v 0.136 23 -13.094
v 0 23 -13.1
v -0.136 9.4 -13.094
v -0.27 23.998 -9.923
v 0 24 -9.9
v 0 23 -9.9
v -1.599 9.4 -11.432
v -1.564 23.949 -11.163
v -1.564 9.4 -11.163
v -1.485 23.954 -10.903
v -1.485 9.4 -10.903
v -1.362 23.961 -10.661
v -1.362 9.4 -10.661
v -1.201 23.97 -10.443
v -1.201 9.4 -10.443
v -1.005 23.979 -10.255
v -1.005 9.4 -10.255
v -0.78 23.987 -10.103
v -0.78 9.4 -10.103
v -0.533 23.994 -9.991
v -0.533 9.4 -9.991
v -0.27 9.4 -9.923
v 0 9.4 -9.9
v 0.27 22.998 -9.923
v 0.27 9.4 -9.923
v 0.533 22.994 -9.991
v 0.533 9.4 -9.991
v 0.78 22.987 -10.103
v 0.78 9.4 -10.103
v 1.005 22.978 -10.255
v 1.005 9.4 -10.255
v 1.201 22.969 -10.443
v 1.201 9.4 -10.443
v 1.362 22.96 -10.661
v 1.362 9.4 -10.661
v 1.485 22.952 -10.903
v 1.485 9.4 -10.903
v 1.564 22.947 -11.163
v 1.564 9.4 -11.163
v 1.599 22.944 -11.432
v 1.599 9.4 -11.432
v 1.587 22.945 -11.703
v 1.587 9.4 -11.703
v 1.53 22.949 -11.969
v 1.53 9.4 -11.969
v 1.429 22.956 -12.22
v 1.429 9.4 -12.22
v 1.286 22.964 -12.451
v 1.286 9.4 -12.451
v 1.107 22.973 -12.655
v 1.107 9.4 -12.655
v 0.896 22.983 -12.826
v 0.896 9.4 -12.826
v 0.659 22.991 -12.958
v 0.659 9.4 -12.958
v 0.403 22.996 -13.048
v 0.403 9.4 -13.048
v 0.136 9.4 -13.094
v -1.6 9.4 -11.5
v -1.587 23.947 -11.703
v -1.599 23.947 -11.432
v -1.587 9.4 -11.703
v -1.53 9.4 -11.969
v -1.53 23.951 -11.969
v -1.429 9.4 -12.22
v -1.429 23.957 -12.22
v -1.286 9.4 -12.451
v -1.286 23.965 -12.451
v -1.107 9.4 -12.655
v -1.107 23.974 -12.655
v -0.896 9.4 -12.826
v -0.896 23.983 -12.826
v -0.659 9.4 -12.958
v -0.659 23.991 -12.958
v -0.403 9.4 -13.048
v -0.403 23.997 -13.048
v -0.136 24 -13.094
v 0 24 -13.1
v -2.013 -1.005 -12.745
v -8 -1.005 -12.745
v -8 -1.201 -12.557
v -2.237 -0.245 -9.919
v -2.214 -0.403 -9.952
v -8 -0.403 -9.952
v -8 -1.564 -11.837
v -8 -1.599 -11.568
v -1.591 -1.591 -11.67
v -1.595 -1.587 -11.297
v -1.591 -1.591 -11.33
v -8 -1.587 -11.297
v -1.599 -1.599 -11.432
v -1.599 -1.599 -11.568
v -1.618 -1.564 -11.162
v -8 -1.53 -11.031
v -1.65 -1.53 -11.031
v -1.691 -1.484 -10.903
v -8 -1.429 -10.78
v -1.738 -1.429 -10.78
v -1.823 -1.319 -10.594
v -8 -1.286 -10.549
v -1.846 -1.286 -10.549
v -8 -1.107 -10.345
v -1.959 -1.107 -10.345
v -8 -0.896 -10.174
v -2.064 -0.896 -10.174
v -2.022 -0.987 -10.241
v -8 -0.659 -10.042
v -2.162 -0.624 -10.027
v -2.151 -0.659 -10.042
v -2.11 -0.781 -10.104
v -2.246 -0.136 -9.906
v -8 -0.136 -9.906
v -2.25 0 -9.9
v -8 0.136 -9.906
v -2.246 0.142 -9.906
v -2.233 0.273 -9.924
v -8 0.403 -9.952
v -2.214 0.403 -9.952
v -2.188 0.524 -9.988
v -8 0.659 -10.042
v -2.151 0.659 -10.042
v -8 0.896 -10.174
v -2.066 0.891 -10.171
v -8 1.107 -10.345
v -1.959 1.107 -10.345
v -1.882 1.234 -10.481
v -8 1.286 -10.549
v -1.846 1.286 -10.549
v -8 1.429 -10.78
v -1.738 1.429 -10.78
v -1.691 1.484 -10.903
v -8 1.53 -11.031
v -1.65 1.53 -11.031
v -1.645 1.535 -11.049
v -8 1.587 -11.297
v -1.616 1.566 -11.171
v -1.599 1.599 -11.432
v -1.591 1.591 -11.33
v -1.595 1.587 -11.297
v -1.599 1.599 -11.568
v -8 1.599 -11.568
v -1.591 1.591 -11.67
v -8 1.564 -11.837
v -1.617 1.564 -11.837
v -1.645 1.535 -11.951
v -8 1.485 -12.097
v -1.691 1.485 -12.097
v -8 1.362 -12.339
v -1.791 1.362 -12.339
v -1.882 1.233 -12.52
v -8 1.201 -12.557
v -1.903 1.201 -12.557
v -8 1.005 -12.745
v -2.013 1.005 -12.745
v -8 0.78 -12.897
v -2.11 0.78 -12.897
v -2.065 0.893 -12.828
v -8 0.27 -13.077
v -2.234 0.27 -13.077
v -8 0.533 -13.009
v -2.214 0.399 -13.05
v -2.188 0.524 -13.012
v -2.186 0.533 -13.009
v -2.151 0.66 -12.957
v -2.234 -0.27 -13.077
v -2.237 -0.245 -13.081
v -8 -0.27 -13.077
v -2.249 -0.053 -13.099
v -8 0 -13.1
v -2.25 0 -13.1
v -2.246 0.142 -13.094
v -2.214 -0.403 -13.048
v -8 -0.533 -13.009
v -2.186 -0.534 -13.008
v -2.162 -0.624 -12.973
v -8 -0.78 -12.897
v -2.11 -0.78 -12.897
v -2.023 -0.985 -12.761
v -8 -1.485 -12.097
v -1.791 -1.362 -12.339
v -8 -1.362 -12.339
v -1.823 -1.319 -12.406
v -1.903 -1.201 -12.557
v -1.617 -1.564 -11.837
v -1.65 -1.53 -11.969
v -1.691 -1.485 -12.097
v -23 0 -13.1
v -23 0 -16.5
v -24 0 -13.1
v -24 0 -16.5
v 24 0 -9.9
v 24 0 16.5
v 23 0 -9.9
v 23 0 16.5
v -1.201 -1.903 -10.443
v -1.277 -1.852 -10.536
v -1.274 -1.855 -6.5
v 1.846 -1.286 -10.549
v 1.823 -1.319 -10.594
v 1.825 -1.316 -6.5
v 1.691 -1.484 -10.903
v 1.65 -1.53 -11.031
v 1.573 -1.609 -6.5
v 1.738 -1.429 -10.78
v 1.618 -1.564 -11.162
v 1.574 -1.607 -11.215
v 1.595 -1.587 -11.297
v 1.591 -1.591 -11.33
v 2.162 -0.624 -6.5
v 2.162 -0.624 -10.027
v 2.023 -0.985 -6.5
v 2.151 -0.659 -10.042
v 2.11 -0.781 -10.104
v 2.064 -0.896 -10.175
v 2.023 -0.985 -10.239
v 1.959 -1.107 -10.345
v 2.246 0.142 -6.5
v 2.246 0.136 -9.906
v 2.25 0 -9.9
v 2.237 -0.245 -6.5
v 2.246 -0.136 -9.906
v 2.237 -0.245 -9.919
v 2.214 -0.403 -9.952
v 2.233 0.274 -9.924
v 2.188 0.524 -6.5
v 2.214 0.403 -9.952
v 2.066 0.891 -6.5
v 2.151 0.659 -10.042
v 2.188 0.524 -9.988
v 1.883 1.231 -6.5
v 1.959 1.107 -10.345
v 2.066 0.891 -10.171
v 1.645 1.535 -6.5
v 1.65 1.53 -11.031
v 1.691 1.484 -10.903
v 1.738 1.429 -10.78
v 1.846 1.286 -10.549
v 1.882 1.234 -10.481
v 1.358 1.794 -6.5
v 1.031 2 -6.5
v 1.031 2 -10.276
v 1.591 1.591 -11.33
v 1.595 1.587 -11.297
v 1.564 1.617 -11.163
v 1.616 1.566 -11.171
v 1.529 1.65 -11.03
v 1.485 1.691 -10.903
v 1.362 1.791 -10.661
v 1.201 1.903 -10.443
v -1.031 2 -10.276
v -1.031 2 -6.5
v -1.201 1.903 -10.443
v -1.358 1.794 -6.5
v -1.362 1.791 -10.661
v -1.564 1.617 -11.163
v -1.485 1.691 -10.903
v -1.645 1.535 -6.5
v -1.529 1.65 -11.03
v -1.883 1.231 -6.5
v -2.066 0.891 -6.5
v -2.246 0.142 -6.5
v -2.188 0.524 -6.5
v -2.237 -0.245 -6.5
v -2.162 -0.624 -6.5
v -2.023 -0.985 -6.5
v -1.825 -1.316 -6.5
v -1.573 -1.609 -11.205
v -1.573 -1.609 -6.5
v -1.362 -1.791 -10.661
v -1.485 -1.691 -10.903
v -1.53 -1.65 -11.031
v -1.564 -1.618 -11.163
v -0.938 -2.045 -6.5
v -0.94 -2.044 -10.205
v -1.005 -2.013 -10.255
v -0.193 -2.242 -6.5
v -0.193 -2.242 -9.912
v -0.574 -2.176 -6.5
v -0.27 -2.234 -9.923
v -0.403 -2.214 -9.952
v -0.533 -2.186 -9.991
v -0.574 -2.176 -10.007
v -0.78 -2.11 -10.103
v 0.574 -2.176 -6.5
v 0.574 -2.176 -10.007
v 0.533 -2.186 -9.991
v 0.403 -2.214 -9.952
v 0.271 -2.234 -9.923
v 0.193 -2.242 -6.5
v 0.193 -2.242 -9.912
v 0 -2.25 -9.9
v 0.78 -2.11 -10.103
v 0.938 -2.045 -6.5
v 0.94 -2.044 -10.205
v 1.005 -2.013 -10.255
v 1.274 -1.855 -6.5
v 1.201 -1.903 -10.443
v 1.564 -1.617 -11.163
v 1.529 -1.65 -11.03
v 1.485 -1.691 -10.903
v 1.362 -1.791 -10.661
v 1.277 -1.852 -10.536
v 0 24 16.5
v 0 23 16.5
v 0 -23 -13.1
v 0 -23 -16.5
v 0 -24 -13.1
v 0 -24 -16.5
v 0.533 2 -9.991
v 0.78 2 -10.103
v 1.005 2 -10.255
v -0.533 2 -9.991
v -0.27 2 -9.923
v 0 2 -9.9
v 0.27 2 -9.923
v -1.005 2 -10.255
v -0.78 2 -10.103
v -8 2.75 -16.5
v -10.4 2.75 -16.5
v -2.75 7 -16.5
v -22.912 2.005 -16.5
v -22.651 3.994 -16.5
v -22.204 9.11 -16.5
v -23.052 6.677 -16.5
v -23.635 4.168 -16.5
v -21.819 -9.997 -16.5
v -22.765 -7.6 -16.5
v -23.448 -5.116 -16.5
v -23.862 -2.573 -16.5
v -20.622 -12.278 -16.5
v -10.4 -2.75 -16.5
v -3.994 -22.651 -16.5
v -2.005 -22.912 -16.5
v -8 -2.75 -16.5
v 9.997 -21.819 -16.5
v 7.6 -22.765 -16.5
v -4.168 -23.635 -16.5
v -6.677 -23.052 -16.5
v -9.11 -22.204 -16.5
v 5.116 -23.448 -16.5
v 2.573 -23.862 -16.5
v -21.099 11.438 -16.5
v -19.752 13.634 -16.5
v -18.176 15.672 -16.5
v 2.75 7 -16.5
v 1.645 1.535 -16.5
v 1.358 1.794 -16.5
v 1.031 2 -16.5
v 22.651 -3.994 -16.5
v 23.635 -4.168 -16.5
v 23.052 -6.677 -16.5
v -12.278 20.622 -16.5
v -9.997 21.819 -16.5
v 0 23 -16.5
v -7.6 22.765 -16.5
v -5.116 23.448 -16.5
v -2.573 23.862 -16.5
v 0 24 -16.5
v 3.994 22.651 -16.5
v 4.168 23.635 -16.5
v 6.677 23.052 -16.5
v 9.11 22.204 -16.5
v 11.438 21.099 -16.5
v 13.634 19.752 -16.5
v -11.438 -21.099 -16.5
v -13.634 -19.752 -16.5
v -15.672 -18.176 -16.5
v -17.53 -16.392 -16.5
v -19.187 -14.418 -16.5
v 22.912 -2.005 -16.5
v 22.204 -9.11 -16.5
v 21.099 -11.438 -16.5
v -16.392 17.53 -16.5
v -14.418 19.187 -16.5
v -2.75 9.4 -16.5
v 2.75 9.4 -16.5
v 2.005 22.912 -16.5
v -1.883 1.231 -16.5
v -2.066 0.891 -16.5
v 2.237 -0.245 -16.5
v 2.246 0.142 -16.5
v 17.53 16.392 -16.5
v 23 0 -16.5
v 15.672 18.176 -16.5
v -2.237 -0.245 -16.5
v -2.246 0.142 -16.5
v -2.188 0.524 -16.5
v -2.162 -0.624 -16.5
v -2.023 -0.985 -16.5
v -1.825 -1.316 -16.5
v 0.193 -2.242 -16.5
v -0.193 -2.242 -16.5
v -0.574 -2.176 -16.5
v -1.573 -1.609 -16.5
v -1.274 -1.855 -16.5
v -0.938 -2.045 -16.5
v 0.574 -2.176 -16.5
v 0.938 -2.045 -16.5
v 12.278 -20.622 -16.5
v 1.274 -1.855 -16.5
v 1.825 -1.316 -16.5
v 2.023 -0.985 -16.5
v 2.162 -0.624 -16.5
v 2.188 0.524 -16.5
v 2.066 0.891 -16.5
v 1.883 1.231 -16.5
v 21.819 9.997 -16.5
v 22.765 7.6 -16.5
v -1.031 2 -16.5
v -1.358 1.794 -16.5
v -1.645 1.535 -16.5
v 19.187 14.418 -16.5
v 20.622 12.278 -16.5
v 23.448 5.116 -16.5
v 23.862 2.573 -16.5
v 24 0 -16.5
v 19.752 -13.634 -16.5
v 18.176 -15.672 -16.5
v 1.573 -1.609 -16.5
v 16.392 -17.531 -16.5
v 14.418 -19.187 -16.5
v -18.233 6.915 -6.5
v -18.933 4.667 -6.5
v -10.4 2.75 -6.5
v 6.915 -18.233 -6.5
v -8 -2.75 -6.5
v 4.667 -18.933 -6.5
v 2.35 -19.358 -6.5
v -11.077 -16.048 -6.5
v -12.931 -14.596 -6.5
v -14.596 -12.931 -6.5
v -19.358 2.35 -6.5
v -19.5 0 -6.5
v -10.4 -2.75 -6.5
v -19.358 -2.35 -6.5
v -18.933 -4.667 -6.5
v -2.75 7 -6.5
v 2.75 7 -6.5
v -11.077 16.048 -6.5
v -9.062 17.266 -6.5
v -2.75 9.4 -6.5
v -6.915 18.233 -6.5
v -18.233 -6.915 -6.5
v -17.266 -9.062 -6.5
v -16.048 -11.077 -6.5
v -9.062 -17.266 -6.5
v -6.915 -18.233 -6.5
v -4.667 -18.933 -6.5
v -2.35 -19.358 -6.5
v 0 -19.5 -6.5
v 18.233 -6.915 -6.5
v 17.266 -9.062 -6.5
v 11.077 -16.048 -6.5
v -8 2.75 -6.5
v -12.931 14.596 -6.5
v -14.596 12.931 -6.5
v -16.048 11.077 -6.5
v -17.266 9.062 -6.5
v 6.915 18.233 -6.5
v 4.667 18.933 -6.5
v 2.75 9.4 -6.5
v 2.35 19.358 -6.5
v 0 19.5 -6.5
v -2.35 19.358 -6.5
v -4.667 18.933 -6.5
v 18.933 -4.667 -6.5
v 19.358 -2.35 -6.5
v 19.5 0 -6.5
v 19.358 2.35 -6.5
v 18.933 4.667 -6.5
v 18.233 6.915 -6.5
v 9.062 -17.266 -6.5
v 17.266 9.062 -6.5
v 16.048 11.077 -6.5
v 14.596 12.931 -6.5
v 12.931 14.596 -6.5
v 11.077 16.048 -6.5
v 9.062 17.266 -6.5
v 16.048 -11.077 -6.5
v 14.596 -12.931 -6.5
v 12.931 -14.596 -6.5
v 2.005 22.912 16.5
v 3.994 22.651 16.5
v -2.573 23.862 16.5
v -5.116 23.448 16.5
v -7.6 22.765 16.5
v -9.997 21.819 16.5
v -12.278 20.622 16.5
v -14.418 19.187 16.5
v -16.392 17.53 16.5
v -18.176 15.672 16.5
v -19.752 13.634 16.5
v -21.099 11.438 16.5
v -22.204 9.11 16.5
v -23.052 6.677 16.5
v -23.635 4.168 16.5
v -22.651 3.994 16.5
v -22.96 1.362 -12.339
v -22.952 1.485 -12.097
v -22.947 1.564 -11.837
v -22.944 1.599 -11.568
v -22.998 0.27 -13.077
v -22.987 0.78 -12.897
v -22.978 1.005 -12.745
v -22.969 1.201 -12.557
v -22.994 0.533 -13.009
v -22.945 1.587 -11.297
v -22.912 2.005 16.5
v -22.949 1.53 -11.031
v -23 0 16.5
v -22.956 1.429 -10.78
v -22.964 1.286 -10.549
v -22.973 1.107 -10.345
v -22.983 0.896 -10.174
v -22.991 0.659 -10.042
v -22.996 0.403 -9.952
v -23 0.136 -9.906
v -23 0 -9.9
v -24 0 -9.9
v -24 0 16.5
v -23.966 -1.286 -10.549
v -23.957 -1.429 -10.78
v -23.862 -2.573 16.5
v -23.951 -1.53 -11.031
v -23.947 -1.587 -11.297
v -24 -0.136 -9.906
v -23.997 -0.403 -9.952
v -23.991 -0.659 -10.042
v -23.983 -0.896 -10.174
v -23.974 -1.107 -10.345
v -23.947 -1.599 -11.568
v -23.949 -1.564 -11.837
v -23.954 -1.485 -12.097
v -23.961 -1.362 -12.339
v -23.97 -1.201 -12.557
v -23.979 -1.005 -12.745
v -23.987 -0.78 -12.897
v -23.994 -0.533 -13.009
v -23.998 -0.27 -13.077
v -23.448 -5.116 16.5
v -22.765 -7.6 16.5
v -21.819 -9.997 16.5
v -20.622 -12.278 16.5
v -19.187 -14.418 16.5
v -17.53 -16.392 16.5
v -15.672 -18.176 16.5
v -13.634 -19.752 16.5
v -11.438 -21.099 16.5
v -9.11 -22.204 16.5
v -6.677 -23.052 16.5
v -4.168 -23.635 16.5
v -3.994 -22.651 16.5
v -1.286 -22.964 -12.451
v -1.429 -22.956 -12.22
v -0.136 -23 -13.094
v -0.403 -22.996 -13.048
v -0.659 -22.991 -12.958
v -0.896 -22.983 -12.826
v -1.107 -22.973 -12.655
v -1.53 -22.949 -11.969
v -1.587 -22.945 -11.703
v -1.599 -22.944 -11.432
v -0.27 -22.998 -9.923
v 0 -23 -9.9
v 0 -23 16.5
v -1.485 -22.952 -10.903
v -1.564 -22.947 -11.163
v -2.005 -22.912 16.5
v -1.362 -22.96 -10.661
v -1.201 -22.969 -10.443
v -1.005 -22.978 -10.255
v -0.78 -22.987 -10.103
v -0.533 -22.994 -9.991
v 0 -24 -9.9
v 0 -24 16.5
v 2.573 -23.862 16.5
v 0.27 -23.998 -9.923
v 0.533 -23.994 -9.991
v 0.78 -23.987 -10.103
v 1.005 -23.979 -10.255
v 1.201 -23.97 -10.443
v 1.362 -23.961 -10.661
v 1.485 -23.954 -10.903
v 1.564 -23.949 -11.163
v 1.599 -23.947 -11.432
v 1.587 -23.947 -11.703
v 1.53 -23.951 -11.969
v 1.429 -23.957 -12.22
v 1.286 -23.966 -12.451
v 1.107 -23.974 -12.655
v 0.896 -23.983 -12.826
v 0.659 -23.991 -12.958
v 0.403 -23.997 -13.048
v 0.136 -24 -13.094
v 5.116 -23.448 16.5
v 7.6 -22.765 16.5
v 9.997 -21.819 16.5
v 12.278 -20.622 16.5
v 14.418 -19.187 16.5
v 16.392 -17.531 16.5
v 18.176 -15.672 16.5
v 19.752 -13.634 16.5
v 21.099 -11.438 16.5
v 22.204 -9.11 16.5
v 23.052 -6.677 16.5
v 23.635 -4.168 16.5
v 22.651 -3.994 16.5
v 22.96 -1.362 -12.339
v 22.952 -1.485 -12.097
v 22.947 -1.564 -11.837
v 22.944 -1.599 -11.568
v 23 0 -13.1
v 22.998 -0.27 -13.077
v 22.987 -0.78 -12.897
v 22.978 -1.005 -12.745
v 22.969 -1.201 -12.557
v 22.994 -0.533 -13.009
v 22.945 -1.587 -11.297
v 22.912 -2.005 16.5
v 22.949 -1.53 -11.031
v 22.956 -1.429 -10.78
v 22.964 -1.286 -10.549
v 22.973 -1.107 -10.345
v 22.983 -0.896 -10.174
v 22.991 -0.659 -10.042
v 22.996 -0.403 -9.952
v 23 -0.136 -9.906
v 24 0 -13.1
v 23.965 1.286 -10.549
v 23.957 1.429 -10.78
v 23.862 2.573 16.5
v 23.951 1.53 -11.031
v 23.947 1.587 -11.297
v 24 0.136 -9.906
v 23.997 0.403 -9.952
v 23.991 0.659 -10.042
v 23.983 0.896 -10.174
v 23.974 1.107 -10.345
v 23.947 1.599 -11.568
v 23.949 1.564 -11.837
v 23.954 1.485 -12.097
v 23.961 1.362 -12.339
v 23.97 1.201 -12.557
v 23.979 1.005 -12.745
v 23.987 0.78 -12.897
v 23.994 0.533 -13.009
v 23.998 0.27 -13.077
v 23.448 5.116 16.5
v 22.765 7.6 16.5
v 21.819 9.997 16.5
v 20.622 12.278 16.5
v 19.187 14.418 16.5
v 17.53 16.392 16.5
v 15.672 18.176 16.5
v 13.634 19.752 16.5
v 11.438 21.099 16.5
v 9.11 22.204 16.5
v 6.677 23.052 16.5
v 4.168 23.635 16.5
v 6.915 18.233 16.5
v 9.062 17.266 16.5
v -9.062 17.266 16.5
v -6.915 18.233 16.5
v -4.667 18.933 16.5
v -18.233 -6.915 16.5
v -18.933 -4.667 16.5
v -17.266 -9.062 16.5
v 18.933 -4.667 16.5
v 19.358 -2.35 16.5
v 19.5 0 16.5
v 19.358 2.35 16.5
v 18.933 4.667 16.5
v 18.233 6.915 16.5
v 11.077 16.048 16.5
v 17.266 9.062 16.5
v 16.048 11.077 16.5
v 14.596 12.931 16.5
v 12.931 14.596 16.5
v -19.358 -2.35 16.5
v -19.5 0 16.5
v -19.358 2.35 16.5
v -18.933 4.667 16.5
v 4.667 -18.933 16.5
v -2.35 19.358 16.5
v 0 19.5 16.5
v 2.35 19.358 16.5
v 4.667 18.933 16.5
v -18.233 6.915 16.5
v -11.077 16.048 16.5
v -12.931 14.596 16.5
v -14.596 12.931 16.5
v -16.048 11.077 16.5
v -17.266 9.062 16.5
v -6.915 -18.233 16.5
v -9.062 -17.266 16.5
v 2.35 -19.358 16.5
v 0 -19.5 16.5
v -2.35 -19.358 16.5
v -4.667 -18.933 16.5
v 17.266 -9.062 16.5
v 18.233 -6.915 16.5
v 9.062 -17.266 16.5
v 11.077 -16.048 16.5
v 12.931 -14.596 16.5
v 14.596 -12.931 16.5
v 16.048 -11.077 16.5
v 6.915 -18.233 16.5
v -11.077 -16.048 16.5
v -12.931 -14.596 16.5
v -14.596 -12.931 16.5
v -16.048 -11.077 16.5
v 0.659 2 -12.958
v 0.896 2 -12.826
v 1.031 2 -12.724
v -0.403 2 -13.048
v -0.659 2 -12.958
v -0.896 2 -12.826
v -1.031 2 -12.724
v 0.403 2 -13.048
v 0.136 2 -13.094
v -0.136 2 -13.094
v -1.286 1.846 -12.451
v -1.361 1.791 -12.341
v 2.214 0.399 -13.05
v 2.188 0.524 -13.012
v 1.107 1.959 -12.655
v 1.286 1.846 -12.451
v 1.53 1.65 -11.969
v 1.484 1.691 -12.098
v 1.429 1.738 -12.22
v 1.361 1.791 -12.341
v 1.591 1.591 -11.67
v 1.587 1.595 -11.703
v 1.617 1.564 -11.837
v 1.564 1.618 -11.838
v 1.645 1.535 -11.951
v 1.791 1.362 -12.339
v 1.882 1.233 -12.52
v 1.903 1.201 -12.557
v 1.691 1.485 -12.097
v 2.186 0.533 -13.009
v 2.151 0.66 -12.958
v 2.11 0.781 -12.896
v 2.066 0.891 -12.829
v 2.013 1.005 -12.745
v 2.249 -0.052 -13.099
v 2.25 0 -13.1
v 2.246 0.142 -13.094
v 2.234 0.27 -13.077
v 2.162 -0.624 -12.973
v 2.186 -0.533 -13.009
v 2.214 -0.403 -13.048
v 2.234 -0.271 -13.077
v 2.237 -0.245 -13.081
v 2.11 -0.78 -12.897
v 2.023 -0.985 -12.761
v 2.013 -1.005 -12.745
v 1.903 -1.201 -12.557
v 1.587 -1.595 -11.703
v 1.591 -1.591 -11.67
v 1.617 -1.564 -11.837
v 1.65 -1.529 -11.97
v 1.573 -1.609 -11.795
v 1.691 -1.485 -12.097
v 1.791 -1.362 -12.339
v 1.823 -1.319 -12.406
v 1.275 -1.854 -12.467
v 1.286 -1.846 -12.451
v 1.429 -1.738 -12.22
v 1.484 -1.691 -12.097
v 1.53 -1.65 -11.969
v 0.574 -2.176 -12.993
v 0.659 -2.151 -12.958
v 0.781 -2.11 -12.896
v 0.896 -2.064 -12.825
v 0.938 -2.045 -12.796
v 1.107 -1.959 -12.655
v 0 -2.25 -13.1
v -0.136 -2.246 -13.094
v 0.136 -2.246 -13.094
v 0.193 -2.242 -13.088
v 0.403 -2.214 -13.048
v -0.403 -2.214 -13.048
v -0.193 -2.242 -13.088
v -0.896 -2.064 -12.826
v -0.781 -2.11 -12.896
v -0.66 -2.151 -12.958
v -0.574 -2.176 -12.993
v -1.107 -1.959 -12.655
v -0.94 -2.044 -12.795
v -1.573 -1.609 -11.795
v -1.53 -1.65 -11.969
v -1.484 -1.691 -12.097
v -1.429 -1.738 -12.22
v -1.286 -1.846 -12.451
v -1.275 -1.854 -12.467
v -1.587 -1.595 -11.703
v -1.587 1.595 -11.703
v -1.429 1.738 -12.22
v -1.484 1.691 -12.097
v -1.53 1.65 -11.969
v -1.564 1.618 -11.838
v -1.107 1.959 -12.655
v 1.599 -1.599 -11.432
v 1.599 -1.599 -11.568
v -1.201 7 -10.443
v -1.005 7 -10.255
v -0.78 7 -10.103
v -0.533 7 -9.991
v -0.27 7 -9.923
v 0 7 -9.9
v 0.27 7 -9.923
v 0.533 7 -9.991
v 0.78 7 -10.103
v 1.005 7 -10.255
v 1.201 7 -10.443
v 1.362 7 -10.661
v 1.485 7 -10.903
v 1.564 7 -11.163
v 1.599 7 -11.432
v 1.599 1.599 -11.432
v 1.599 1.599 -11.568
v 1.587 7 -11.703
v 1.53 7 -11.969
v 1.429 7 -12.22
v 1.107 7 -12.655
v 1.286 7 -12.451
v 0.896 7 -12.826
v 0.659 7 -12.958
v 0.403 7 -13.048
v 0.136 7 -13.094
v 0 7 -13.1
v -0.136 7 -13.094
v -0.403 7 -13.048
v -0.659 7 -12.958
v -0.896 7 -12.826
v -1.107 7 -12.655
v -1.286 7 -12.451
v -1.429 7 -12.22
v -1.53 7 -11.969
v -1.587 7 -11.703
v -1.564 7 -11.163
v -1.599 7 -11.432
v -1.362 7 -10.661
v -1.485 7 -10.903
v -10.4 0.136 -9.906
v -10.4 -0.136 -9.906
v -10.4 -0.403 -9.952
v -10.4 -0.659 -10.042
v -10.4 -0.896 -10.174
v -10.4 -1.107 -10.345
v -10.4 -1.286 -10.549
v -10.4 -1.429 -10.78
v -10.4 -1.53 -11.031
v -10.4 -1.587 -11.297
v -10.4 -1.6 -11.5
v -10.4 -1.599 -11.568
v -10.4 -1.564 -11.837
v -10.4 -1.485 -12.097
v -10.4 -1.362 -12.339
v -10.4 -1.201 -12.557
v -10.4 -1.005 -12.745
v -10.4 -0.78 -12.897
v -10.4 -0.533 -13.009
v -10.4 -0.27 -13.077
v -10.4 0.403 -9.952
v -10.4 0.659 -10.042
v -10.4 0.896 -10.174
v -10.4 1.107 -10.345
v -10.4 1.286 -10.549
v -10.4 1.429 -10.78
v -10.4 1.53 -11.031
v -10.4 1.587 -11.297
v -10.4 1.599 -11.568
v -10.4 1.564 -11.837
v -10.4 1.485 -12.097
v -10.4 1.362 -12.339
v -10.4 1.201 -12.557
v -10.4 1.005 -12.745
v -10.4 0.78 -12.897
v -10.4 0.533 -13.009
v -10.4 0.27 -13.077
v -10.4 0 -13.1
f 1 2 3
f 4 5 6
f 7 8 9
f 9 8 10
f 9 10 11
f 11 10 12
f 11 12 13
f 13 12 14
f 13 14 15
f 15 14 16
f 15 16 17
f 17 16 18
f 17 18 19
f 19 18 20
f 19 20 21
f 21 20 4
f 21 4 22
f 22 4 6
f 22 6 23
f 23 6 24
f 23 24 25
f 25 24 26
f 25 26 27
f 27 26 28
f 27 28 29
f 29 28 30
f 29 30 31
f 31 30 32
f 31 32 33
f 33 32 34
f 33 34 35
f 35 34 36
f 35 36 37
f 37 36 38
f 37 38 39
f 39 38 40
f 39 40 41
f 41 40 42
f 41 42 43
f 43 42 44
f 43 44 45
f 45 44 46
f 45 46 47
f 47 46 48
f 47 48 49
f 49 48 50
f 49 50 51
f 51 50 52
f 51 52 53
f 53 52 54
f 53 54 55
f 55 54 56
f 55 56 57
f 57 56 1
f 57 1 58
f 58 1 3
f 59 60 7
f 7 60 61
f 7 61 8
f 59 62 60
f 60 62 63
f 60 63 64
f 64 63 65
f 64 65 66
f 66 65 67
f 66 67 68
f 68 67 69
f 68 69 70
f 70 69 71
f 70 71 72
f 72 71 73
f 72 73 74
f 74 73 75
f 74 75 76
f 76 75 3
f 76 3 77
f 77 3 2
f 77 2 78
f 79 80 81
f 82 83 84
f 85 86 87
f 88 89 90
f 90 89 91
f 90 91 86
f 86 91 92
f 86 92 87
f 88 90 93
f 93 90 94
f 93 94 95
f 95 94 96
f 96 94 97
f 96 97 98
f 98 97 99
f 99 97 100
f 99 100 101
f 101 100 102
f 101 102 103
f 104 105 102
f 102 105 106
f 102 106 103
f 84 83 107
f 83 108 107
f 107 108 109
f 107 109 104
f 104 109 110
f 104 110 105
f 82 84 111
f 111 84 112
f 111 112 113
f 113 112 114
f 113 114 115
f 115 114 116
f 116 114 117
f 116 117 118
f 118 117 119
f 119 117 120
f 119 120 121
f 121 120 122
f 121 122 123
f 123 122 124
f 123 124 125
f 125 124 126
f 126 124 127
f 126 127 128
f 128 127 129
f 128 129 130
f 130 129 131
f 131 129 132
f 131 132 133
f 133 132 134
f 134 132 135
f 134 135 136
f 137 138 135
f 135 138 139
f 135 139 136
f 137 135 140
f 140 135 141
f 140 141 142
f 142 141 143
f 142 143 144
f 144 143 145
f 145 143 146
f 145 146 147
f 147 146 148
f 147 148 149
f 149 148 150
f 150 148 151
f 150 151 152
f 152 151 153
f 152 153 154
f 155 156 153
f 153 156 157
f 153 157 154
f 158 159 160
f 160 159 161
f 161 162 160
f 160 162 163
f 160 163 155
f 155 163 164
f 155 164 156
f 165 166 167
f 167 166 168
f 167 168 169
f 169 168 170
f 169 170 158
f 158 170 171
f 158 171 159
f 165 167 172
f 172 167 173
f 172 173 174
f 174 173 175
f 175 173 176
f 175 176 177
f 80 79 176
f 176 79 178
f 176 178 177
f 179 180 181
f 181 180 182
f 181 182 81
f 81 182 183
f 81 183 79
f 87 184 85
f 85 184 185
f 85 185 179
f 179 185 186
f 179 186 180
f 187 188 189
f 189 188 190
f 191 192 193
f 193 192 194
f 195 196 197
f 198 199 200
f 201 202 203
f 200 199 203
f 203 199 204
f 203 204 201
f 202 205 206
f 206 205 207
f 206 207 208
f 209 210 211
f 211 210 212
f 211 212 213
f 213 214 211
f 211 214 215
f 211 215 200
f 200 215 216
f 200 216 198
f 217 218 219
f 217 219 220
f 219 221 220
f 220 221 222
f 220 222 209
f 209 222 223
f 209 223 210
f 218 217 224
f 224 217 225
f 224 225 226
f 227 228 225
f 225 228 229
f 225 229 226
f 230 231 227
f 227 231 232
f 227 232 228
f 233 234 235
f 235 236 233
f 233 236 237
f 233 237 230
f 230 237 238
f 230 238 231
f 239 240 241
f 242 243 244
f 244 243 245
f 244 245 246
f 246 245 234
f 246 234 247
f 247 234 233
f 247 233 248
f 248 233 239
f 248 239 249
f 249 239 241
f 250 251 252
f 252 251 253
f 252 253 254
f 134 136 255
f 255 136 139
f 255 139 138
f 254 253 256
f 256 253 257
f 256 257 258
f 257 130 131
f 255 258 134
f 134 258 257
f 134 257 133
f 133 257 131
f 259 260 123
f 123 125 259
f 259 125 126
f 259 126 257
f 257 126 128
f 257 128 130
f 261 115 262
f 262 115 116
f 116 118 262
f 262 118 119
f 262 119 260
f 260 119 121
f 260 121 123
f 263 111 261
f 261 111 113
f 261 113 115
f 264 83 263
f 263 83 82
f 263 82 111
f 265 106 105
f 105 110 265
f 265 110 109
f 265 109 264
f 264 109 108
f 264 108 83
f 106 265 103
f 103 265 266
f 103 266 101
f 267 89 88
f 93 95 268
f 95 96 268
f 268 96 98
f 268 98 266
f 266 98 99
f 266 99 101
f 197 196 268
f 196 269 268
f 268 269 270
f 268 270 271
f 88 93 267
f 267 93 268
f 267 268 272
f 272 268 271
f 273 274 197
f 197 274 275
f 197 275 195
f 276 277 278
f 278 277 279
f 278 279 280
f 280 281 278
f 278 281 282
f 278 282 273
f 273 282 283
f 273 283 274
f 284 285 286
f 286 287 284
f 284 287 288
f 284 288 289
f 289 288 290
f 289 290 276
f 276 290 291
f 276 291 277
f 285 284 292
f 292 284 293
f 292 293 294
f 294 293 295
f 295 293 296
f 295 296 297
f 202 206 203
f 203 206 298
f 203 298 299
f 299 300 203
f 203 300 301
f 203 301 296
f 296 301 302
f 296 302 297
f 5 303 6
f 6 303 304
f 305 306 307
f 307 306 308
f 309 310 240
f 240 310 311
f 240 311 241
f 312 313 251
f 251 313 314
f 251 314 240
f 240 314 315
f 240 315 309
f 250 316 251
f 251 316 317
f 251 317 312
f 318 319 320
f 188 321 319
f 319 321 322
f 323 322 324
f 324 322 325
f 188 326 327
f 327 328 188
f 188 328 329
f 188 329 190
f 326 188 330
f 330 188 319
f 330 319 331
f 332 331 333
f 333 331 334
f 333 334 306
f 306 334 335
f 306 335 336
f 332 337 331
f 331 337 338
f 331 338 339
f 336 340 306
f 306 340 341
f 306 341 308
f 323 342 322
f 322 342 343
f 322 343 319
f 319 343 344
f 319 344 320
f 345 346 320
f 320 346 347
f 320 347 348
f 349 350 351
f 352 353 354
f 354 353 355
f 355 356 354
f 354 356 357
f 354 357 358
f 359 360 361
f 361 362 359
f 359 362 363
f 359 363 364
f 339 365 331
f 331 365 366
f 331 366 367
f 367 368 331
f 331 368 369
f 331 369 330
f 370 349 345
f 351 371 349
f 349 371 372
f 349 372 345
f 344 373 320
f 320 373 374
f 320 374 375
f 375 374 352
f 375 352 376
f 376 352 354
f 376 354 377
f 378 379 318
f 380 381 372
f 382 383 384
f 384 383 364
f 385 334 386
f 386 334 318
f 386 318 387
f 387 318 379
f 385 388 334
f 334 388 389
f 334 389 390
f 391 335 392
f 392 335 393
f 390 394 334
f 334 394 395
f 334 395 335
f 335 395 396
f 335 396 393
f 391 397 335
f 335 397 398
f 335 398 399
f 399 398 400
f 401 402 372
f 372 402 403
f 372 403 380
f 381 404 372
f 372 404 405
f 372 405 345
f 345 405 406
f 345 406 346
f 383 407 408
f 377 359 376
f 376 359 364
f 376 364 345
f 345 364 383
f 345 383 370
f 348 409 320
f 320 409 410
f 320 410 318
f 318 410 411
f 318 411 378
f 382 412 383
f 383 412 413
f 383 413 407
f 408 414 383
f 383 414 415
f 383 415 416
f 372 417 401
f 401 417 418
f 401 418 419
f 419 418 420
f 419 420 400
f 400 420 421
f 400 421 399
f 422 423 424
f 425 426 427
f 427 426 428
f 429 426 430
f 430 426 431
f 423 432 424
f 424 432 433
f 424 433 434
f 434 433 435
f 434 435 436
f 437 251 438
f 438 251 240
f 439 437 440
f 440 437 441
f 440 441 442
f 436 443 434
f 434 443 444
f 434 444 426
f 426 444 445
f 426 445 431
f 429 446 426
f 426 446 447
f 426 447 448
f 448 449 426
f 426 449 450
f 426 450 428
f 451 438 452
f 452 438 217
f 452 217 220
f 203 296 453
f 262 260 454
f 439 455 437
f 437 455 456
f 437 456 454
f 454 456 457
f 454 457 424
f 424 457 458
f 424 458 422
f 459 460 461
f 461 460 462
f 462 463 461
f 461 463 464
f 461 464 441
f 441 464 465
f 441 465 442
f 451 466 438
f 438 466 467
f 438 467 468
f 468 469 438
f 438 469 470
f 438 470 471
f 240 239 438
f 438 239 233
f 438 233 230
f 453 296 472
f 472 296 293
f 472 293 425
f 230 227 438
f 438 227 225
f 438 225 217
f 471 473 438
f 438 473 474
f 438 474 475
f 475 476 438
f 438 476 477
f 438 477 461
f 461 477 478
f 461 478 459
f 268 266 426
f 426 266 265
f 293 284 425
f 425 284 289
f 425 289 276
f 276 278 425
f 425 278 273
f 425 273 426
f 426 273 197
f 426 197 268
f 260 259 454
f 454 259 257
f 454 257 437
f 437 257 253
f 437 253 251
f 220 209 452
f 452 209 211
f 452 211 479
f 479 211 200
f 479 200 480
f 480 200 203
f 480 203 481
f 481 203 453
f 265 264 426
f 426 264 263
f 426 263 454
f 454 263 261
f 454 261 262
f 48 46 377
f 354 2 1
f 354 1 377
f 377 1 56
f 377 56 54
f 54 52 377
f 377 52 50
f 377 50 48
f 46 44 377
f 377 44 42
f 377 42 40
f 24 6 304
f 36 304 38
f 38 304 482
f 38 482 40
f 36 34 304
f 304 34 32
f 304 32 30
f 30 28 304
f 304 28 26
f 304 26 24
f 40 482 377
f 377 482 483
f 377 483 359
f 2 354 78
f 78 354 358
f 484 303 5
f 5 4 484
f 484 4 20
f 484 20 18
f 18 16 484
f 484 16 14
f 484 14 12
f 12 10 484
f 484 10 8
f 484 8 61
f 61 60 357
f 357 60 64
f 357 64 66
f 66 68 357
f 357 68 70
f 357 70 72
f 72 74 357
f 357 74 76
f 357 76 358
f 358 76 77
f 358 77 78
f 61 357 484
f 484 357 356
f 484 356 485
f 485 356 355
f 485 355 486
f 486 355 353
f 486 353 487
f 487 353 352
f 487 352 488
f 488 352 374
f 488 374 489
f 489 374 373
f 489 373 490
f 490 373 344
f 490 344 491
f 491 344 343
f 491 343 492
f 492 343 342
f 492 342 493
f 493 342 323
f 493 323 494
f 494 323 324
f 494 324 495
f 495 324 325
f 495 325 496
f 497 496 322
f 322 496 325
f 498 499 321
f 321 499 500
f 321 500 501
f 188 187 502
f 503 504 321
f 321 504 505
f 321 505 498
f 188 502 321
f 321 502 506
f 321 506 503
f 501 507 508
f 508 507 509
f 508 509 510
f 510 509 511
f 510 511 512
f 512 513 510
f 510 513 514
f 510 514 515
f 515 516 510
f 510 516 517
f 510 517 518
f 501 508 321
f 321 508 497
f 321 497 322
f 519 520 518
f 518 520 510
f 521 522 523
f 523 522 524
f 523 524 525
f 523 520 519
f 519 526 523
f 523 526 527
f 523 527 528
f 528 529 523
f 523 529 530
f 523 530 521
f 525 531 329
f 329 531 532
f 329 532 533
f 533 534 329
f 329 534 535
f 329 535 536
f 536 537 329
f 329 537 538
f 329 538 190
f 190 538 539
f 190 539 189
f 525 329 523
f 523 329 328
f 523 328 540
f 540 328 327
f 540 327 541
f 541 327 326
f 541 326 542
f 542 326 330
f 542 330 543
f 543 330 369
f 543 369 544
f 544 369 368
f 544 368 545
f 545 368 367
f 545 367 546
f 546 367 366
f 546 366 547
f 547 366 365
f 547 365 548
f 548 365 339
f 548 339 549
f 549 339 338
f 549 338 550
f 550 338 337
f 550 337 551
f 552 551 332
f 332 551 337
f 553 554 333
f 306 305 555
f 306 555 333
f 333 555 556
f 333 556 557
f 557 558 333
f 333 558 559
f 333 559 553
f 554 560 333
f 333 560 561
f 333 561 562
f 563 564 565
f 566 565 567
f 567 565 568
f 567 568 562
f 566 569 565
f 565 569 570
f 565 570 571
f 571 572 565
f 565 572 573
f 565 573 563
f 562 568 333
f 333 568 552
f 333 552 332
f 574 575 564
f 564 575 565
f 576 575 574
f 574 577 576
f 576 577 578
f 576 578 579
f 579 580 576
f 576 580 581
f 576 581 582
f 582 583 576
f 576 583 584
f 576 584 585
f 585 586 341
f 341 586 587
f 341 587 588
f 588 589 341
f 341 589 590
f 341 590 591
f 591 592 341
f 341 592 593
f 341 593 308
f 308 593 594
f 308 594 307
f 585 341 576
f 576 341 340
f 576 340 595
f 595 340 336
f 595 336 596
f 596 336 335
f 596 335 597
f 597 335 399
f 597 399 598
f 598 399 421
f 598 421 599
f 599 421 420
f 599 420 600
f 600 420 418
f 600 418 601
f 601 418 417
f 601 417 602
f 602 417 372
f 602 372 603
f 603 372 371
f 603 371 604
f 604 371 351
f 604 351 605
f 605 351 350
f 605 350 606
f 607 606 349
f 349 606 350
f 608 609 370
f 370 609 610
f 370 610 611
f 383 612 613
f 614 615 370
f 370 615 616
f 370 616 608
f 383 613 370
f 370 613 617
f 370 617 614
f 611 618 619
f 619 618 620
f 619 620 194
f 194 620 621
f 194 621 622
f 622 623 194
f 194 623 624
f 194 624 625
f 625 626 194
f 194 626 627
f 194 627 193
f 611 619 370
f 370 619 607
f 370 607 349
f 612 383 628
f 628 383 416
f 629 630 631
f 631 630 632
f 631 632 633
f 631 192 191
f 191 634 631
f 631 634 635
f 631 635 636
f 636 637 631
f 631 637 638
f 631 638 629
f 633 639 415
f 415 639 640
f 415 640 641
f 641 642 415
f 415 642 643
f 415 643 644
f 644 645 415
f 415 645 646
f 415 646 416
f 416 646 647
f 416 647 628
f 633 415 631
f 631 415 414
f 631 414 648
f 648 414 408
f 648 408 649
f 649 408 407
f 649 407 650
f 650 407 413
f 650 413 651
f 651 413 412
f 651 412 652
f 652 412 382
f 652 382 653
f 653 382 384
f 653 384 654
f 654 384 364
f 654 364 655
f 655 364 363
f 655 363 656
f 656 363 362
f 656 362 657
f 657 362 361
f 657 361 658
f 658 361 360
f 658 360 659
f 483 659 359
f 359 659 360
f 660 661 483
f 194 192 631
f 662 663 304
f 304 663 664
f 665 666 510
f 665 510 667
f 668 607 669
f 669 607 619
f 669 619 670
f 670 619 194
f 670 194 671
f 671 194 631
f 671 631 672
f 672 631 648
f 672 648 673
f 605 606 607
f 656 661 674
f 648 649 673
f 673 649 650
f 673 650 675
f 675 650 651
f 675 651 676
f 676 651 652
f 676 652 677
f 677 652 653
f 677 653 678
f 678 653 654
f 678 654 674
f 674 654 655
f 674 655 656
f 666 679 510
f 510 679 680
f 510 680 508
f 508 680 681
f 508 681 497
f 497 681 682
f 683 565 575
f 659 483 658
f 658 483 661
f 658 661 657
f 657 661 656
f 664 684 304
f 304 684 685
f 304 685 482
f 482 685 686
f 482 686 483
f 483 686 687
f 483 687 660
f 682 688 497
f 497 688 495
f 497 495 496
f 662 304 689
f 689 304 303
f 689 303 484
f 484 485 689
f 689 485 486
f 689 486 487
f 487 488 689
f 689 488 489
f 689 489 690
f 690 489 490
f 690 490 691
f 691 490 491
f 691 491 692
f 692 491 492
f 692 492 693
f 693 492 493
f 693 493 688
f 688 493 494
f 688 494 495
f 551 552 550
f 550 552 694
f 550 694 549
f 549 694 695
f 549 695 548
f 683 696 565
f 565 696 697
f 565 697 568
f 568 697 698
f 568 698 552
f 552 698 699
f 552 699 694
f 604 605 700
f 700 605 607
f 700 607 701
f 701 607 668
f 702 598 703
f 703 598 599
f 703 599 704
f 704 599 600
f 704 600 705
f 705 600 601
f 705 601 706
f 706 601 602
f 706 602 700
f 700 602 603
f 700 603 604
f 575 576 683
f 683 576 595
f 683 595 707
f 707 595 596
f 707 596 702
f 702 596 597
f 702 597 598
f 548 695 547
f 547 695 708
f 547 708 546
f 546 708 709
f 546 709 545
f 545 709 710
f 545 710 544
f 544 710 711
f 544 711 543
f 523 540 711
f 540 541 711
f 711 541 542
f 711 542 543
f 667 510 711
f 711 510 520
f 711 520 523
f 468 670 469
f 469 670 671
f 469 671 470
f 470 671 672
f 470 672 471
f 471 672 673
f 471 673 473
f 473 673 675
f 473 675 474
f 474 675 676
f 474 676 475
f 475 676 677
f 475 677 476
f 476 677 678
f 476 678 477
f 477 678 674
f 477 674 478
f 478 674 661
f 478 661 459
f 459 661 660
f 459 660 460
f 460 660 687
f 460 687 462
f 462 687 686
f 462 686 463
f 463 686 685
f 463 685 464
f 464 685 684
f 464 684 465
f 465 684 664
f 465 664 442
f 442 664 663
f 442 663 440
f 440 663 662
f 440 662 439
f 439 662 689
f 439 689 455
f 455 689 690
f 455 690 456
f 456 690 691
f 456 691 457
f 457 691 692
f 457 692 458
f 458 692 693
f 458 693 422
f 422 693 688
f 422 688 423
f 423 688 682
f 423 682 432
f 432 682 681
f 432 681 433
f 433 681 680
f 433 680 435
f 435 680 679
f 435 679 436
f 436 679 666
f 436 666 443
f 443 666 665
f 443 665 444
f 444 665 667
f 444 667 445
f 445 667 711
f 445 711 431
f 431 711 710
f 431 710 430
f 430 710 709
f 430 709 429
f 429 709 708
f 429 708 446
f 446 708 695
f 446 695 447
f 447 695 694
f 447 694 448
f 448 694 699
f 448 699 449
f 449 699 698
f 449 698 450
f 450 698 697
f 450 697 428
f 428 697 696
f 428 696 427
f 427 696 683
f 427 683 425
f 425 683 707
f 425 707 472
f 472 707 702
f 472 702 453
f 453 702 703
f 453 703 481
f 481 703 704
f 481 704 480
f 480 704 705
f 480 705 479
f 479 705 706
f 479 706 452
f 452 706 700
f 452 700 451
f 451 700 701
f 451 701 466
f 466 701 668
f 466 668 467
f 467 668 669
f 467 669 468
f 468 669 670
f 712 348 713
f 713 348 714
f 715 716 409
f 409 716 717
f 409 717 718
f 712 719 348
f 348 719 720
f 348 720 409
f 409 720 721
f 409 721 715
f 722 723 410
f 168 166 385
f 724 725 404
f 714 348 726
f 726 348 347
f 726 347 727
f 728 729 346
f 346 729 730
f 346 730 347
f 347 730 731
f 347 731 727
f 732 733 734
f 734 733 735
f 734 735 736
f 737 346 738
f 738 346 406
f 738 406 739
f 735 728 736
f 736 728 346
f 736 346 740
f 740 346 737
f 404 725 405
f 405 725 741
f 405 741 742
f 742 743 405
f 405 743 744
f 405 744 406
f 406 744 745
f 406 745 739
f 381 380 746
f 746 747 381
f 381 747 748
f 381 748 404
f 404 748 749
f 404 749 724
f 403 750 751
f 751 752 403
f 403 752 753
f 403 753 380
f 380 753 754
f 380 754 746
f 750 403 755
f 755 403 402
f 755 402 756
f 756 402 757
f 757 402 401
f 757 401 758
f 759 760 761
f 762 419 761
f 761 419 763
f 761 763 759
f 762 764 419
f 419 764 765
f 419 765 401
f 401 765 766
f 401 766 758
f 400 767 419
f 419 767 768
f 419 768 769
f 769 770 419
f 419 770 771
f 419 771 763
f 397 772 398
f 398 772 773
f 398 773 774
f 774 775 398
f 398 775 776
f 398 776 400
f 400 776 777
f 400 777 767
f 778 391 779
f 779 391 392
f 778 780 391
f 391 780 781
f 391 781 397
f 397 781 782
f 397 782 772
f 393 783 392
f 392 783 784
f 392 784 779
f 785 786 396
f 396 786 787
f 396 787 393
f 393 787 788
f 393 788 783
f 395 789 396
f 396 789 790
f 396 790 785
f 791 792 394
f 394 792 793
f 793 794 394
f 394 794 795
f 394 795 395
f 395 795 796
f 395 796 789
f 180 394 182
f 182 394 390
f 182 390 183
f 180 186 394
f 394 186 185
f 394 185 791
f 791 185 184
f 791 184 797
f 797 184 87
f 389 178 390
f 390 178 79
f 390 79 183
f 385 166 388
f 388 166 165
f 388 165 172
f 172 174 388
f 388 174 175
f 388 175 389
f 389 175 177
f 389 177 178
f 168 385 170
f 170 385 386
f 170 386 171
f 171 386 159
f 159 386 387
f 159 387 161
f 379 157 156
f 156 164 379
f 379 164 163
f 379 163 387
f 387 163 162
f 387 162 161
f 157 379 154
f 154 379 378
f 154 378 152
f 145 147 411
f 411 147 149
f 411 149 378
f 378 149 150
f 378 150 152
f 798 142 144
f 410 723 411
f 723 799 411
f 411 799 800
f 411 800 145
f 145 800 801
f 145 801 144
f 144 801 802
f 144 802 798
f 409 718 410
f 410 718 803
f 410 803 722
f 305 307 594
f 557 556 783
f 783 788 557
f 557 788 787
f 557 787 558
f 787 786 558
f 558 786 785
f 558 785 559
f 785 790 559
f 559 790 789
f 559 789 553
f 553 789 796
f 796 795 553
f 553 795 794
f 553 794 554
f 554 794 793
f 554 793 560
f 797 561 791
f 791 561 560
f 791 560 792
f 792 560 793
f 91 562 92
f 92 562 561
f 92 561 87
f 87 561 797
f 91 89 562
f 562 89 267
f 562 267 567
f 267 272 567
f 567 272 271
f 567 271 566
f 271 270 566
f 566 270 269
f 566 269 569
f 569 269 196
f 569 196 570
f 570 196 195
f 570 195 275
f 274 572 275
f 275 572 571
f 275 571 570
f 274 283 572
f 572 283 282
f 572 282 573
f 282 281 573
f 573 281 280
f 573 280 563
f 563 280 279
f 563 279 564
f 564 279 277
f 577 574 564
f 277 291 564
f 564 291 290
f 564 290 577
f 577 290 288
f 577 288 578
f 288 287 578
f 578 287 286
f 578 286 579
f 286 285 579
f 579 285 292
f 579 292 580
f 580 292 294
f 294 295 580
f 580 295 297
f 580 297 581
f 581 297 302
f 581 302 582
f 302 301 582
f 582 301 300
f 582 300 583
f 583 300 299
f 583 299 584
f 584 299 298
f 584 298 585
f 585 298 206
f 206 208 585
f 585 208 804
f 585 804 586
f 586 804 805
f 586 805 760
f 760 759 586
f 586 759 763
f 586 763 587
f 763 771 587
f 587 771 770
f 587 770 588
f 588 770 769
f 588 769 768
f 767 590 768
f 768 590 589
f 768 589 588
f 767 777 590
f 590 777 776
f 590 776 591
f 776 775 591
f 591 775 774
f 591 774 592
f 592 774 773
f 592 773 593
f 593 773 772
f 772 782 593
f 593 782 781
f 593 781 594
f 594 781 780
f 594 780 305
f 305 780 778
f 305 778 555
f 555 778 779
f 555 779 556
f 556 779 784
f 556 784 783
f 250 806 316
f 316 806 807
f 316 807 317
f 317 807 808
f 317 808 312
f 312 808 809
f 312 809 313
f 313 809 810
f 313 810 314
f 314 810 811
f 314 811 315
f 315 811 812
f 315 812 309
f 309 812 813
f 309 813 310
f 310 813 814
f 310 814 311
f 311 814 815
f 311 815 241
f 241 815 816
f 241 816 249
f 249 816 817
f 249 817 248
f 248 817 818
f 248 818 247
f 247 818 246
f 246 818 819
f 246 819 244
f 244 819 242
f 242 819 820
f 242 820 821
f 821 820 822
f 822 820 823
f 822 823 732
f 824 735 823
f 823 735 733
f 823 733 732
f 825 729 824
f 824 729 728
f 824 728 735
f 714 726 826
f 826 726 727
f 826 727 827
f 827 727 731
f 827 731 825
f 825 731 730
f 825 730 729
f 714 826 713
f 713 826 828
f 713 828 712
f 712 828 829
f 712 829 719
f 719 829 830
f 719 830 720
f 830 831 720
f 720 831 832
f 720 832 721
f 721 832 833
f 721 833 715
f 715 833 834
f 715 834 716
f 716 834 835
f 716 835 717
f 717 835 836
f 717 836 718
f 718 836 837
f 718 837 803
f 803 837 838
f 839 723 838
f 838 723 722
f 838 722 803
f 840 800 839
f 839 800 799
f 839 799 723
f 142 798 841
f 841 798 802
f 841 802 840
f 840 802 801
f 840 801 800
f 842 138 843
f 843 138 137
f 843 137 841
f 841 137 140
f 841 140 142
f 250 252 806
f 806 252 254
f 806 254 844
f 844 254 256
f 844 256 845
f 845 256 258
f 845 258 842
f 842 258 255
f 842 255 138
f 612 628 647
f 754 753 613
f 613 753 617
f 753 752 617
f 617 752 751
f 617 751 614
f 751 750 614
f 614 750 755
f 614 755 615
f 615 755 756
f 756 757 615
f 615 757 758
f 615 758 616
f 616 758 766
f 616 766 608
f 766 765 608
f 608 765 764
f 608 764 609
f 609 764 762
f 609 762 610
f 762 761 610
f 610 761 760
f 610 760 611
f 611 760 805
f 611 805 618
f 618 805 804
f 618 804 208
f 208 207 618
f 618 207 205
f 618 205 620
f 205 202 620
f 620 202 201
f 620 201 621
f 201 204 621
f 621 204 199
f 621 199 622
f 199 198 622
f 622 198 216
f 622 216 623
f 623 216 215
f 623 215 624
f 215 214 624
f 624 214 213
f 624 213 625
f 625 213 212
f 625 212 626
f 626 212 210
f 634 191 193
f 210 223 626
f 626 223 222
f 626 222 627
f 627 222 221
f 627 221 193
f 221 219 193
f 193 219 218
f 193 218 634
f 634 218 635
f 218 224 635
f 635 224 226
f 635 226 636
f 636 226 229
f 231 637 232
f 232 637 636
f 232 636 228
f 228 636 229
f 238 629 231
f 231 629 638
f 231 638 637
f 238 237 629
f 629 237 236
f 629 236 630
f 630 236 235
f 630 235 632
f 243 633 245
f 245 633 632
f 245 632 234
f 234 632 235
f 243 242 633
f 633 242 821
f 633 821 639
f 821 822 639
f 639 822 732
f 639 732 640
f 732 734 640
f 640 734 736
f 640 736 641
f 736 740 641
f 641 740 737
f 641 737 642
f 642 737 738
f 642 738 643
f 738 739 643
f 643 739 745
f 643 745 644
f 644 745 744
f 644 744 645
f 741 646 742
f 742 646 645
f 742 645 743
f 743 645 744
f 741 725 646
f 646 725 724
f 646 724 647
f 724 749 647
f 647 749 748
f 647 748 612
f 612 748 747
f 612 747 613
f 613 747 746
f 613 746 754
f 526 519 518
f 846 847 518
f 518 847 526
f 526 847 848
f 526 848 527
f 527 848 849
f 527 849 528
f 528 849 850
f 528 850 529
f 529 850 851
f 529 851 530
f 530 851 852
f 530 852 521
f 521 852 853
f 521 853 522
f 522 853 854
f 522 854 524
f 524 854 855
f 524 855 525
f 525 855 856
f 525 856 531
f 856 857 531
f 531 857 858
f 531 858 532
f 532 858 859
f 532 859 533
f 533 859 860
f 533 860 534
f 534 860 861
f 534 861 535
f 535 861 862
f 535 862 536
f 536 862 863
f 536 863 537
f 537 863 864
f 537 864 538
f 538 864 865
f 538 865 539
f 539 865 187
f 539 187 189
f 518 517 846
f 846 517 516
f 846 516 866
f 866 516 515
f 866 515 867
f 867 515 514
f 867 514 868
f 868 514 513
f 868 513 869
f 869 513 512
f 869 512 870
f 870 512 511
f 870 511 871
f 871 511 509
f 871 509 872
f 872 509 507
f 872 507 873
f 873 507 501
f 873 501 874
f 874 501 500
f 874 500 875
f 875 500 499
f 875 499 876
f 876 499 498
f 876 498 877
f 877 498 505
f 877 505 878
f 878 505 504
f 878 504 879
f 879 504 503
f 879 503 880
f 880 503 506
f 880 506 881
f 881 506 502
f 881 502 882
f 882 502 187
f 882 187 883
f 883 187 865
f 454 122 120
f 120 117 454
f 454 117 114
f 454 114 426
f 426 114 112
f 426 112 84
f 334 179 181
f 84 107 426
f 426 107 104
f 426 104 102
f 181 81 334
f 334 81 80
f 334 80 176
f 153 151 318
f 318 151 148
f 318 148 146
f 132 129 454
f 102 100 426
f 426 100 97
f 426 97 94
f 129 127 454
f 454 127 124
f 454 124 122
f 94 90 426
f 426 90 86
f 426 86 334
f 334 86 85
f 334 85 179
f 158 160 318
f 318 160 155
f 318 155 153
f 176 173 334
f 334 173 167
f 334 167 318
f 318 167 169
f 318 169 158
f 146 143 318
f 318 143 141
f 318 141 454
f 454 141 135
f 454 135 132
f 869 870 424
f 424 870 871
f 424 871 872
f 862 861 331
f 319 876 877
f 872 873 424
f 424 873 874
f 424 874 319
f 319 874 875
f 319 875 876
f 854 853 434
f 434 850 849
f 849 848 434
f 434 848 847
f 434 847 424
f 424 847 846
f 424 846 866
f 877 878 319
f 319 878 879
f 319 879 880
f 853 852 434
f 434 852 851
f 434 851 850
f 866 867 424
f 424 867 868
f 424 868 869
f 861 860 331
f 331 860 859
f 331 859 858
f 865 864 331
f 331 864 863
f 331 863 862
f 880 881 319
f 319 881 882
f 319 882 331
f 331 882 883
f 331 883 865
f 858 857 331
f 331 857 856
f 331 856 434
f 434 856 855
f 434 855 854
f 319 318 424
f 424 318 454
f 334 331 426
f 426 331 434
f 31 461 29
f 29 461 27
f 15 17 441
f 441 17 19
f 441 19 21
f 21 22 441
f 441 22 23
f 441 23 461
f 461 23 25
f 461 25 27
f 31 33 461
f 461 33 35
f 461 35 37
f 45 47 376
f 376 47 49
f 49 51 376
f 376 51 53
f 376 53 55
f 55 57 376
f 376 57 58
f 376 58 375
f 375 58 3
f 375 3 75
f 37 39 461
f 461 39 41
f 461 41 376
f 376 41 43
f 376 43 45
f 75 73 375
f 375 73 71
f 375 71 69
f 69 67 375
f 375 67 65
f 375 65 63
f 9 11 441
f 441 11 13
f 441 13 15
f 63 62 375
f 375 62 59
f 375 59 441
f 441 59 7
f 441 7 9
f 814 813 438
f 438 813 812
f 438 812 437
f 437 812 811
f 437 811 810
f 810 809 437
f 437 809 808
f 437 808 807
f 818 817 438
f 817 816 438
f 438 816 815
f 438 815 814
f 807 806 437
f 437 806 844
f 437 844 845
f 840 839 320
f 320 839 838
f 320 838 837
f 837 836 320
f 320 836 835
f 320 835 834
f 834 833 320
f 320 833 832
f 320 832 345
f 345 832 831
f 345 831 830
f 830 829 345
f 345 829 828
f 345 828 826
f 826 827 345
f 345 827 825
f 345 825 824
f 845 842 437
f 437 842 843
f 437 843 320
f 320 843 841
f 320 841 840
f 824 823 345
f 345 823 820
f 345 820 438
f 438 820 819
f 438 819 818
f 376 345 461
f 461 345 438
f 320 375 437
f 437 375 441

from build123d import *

# Parameters (mm, degrees)
SALIENTE_EXTRUIR1_DEPTH = 16.5
CROQUIS2_R              = 19.5
CORTAR_EXTRUIR1_DEPTH   = 23
CORTAR_EXTRUIR2_DEPTH   = 23
CROQUIS4_R              = 1.6
CORTAR_EXTRUIR3_DEPTH   = 36.5
CROQUIS5_R              = 1.6
CORTAR_EXTRUIR4_DEPTH   = 141.5
CROQUIS6_W              = 5.5
CROQUIS6_H              = 2.4
CROQUIS6_W_2            = 2.4
CROQUIS6_H_2            = 5.5
CORTAR_EXTRUIR5_DEPTH   = 283


with BuildPart() as part:
    # Croquis1 → Saliente-Extruir1 (new body, symmetric)
    with BuildSketch(Plane.XY):
        with BuildLine():
            Line((0, 24), (0, 23))
            ThreePointArc((0, 23), (2.004582083, 22.912478056), (3.993908086, 22.650578319))
            Line((3.993908086, 22.650578319), (4.167556264, 23.635386072))
            ThreePointArc((4.167556264, 23.635386072), (18.385066635, 15.426902632), (24, 0))
            Line((24, 0), (23, 0))
            ThreePointArc((23, 0), (22.912478056, -2.004582083), (22.650578319, -3.993908086))
            Line((22.650578319, -3.993908086), (23.635386072, -4.167556264))
            ThreePointArc((23.635386072, -4.167556264), (15.426902632, -18.385066635), (0, -24))
            Line((0, -24), (0, -23))
            ThreePointArc((0, -23), (-2.004582083, -22.912478056), (-3.993908086, -22.650578319))
            Line((-3.993908086, -22.650578319), (-4.167556264, -23.635386072))
            ThreePointArc((-4.167556264, -23.635386072), (-18.385066635, -15.426902632), (-24, 0))
            Line((-24, 0), (-23, 0))
            ThreePointArc((-23, 0), (-22.912478056, 2.004582083), (-22.650578319, 3.993908086))
            Line((-22.650578319, 3.993908086), (-23.635386072, 4.167556264))
            ThreePointArc((-23.635386072, 4.167556264), (-15.426902632, 18.385066635), (0, 24))
        make_face()
    extrude(amount=SALIENTE_EXTRUIR1_DEPTH, both=True)

    # Croquis2 → Cortar-Extruir1 (cut)
    with BuildSketch(Plane.XY.offset(16.5)):
        Circle(CROQUIS2_R)
    extrude(amount=-CORTAR_EXTRUIR1_DEPTH, mode=Mode.SUBTRACT)

    # Croquis3 → Cortar-Extruir2 (cut)
    with BuildSketch(Plane(origin=(0, 0, -16.5), x_dir=(-1, 0, 0), z_dir=(0, 0, -1))):
        with BuildLine():
            Line((1.030776406, 2), (-1.030776406, 2))
            ThreePointArc((-1.030776406, 2), (-1.17116461, -1.92116461), (2.25, 0))
            ThreePointArc((2.25, 0), (1.92116461, 1.17116461), (1.030776406, 2))
        make_face()
    extrude(amount=-CORTAR_EXTRUIR2_DEPTH, mode=Mode.SUBTRACT)

    # Croquis4 → Cortar-Extruir3 (cut, symmetric)
    with BuildSketch(Plane(origin=(0, 0, 0), x_dir=(1, 0, 0), z_dir=(0, 1, 0))):
        with Locations((0, 11.5)):
            Circle(CROQUIS4_R)
    extrude(amount=CORTAR_EXTRUIR3_DEPTH, both=True, mode=Mode.SUBTRACT)

    # Croquis5 → Cortar-Extruir4 (cut, symmetric)
    with BuildSketch(Plane(origin=(0, 0, 0), x_dir=(0, 0, -1), z_dir=(1, 0, 0))):
        with Locations((11.5, 0)):
            Circle(CROQUIS5_R)
    extrude(amount=CORTAR_EXTRUIR4_DEPTH, both=True, mode=Mode.SUBTRACT)

    # Croquis6 → Cortar-Extruir5 (cut)
    with BuildSketch(Plane(origin=(0, 0, -16.5), x_dir=(-1, 0, 0), z_dir=(0, 0, -1))):
        with Locations((0, 8.2)):
            Rectangle(CROQUIS6_W, CROQUIS6_H)
        with Locations((9.2, 0)):
            Rectangle(CROQUIS6_W_2, CROQUIS6_H_2)
    extrude(amount=-CORTAR_EXTRUIR5_DEPTH, mode=Mode.SUBTRACT)


solid = part.part
